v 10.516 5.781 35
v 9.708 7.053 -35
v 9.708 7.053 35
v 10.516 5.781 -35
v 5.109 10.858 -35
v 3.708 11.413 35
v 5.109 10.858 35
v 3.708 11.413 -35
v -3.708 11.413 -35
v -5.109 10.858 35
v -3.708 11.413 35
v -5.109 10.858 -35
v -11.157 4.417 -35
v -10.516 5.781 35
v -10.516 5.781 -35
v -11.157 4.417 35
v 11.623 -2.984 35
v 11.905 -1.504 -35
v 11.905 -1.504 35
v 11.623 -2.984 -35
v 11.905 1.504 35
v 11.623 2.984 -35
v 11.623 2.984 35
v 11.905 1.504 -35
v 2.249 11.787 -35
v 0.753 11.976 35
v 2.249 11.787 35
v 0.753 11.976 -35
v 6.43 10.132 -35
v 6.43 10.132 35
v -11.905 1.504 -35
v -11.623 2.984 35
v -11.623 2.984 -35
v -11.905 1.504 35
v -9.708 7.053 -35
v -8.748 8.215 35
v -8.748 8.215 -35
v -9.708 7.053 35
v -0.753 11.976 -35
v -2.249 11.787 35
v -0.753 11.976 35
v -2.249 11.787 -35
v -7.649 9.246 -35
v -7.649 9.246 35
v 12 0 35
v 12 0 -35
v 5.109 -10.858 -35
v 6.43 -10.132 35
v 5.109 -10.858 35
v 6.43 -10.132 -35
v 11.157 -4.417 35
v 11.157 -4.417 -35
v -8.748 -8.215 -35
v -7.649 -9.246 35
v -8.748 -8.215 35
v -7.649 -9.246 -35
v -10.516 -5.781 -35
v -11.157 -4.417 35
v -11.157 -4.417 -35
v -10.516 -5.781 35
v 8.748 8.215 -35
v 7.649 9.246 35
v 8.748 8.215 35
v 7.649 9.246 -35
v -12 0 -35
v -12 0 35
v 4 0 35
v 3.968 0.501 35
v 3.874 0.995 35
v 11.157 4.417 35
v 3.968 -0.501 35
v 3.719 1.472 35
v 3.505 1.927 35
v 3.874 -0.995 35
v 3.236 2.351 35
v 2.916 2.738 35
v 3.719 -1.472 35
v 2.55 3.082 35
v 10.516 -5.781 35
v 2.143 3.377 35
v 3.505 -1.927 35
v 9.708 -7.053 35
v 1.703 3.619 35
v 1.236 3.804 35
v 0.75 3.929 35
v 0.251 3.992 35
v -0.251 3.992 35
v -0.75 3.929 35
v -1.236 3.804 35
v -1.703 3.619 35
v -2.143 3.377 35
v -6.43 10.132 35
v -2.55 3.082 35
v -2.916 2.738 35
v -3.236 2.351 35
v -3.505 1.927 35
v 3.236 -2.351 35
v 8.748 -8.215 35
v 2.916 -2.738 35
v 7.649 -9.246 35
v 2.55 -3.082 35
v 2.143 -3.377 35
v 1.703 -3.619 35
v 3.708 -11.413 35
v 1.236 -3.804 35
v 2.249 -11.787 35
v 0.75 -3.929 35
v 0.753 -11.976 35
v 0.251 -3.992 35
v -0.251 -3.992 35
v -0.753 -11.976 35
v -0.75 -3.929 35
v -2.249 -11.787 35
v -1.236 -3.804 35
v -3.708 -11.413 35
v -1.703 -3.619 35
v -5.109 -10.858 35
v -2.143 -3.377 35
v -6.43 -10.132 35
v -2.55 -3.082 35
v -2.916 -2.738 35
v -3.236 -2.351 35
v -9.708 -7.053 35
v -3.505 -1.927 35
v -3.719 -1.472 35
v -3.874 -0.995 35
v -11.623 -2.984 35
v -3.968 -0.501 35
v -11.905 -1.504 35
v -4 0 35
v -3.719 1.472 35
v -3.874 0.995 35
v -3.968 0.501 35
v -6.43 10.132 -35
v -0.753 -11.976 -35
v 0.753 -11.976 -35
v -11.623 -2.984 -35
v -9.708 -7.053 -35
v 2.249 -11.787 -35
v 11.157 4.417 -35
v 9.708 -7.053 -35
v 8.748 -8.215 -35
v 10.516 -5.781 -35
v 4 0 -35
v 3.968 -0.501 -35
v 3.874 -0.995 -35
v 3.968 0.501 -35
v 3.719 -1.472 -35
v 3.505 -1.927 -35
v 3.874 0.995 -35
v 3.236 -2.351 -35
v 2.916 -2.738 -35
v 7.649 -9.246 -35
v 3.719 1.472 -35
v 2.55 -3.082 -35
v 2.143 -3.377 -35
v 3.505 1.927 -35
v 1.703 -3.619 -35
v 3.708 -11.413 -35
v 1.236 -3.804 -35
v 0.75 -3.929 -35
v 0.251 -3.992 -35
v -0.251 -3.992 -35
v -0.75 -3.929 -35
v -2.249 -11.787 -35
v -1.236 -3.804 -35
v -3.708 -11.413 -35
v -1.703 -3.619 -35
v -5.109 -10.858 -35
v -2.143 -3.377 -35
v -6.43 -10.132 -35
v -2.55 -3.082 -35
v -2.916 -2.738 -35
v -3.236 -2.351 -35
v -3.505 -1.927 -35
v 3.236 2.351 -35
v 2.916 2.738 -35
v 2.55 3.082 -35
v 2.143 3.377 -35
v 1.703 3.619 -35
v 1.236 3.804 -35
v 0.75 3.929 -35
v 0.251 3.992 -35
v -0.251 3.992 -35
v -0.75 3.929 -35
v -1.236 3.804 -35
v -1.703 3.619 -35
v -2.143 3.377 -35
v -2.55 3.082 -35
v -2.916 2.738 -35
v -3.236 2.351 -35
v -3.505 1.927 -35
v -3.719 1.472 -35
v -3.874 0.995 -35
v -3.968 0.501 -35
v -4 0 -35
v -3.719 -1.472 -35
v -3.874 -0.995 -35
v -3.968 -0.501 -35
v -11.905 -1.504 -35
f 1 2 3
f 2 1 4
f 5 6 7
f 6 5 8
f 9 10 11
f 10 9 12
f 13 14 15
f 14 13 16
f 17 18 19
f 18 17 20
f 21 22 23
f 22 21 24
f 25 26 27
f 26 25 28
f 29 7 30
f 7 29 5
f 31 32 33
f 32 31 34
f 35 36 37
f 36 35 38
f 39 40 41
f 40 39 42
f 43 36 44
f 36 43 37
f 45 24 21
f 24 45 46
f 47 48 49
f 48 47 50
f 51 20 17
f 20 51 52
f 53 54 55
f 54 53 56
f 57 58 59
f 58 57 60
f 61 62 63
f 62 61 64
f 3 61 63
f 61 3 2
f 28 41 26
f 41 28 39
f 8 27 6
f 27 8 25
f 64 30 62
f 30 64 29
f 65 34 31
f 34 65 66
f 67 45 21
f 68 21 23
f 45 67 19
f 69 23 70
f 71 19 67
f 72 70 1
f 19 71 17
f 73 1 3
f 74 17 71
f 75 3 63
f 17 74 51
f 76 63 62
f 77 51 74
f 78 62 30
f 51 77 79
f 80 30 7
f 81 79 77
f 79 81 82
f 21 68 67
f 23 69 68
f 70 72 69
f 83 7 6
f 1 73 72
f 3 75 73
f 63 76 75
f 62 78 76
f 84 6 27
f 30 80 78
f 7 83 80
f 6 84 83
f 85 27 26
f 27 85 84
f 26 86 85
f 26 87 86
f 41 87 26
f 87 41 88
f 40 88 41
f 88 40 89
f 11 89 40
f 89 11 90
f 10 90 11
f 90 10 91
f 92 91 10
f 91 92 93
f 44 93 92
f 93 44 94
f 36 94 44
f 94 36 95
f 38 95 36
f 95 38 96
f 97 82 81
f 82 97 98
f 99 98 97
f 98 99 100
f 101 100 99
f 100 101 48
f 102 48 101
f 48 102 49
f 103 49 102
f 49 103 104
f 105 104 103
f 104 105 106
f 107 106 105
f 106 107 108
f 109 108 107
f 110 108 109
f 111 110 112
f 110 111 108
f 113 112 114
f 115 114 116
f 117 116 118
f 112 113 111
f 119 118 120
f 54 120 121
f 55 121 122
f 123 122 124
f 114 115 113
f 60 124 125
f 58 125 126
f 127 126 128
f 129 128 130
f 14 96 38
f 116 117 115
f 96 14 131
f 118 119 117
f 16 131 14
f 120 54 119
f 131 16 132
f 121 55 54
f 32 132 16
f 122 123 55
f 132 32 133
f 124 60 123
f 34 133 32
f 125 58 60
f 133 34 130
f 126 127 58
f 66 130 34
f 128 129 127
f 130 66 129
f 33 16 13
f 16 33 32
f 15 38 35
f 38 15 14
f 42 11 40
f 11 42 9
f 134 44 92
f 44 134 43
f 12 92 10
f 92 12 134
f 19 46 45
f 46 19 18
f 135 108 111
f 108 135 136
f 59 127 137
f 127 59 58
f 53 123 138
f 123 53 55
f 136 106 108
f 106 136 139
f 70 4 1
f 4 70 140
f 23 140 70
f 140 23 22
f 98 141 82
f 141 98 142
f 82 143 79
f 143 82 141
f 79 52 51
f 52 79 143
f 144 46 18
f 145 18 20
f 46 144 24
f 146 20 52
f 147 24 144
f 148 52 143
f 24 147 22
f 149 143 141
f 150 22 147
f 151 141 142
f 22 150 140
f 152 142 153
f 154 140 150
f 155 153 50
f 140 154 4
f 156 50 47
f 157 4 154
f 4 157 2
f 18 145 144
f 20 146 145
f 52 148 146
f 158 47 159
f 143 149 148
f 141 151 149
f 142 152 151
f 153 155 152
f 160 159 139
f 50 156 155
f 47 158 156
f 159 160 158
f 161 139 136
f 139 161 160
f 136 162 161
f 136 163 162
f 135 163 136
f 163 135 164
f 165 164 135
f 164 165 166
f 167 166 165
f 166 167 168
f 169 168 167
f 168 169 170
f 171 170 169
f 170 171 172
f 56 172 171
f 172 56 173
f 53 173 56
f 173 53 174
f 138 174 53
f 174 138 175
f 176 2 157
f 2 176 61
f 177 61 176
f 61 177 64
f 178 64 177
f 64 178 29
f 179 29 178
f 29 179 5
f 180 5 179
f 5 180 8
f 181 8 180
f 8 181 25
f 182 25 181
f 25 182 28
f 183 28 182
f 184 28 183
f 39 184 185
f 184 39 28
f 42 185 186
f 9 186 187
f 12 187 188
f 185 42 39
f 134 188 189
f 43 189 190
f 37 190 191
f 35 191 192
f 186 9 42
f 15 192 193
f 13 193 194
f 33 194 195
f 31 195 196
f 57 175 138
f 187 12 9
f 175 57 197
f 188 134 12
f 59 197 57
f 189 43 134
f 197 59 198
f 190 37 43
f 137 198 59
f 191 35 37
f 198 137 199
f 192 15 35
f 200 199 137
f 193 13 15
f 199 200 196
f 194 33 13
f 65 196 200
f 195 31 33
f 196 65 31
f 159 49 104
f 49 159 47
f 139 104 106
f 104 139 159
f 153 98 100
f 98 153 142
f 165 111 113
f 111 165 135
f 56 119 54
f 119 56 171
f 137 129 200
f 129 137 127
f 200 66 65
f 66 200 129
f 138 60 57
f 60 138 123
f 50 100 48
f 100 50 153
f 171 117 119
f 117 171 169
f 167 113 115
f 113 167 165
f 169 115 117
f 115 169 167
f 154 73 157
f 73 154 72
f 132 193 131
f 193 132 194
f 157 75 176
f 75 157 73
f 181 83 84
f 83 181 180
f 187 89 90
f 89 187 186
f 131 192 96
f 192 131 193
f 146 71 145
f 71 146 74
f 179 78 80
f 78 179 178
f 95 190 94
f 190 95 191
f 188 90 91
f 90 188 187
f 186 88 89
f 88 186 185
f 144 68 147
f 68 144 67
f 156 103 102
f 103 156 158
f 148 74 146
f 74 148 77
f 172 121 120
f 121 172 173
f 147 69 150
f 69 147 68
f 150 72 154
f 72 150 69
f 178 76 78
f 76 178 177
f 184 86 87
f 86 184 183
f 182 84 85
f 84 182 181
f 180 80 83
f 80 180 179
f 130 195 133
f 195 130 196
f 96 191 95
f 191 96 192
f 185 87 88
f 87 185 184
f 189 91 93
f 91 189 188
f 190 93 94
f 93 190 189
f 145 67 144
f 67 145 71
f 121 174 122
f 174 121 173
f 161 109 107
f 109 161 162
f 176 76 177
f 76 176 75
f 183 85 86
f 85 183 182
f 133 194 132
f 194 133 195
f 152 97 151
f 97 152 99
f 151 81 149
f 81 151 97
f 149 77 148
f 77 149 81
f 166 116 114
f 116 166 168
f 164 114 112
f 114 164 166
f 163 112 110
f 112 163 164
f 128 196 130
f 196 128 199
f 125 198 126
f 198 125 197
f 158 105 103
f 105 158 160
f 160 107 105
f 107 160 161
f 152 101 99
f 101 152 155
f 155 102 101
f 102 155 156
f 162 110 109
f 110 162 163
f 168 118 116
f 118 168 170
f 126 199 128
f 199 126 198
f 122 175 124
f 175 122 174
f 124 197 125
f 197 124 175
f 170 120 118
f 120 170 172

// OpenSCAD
$fn = 50;


difference() {
	union() {
		translate(v = [0, 0, -35.0000000000]) {
			cylinder(h = 70, r = 12.0000000000);
		}
	}
	union() {
		translate(v = [0, 0, -100.0000000000]) {
			cylinder(h = 200, r = 4);
		}
	}
}
